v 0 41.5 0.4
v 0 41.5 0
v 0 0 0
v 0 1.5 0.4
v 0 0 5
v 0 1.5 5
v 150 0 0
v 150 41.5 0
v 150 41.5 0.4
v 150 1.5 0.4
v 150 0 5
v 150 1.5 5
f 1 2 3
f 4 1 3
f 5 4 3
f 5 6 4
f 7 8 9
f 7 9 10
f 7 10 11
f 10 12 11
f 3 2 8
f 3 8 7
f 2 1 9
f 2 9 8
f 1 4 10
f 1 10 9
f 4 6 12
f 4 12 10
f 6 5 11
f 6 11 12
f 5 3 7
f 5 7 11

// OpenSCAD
// K1: modelled display adaptation of ITKE's Flectofin, EP2320015.
// All dimensions are millimetres and ASSUMED; see README.md.
// Edit these dimensions, press F6 in OpenSCAD, then export STL.
// Geometry only: no deformation or structural simulation is performed.
rib_length_mm = 150;
rib_thickness_mm = 1.5;
rib_height_mm = 5;
sheet_clear_width_mm = 40;
sheet_thickness_mm = 0.4;

assert(rib_length_mm > 0 && rib_thickness_mm > 0);
assert(sheet_clear_width_mm > 0 && sheet_thickness_mm > 0);
assert(rib_height_mm > sheet_thickness_mm);
union() {
    cube([rib_length_mm, rib_thickness_mm, rib_height_mm]);
    // The sheet extends under the rib, making a continuous solid union.
    cube([rib_length_mm, rib_thickness_mm + sheet_clear_width_mm,
          sheet_thickness_mm]);
}
